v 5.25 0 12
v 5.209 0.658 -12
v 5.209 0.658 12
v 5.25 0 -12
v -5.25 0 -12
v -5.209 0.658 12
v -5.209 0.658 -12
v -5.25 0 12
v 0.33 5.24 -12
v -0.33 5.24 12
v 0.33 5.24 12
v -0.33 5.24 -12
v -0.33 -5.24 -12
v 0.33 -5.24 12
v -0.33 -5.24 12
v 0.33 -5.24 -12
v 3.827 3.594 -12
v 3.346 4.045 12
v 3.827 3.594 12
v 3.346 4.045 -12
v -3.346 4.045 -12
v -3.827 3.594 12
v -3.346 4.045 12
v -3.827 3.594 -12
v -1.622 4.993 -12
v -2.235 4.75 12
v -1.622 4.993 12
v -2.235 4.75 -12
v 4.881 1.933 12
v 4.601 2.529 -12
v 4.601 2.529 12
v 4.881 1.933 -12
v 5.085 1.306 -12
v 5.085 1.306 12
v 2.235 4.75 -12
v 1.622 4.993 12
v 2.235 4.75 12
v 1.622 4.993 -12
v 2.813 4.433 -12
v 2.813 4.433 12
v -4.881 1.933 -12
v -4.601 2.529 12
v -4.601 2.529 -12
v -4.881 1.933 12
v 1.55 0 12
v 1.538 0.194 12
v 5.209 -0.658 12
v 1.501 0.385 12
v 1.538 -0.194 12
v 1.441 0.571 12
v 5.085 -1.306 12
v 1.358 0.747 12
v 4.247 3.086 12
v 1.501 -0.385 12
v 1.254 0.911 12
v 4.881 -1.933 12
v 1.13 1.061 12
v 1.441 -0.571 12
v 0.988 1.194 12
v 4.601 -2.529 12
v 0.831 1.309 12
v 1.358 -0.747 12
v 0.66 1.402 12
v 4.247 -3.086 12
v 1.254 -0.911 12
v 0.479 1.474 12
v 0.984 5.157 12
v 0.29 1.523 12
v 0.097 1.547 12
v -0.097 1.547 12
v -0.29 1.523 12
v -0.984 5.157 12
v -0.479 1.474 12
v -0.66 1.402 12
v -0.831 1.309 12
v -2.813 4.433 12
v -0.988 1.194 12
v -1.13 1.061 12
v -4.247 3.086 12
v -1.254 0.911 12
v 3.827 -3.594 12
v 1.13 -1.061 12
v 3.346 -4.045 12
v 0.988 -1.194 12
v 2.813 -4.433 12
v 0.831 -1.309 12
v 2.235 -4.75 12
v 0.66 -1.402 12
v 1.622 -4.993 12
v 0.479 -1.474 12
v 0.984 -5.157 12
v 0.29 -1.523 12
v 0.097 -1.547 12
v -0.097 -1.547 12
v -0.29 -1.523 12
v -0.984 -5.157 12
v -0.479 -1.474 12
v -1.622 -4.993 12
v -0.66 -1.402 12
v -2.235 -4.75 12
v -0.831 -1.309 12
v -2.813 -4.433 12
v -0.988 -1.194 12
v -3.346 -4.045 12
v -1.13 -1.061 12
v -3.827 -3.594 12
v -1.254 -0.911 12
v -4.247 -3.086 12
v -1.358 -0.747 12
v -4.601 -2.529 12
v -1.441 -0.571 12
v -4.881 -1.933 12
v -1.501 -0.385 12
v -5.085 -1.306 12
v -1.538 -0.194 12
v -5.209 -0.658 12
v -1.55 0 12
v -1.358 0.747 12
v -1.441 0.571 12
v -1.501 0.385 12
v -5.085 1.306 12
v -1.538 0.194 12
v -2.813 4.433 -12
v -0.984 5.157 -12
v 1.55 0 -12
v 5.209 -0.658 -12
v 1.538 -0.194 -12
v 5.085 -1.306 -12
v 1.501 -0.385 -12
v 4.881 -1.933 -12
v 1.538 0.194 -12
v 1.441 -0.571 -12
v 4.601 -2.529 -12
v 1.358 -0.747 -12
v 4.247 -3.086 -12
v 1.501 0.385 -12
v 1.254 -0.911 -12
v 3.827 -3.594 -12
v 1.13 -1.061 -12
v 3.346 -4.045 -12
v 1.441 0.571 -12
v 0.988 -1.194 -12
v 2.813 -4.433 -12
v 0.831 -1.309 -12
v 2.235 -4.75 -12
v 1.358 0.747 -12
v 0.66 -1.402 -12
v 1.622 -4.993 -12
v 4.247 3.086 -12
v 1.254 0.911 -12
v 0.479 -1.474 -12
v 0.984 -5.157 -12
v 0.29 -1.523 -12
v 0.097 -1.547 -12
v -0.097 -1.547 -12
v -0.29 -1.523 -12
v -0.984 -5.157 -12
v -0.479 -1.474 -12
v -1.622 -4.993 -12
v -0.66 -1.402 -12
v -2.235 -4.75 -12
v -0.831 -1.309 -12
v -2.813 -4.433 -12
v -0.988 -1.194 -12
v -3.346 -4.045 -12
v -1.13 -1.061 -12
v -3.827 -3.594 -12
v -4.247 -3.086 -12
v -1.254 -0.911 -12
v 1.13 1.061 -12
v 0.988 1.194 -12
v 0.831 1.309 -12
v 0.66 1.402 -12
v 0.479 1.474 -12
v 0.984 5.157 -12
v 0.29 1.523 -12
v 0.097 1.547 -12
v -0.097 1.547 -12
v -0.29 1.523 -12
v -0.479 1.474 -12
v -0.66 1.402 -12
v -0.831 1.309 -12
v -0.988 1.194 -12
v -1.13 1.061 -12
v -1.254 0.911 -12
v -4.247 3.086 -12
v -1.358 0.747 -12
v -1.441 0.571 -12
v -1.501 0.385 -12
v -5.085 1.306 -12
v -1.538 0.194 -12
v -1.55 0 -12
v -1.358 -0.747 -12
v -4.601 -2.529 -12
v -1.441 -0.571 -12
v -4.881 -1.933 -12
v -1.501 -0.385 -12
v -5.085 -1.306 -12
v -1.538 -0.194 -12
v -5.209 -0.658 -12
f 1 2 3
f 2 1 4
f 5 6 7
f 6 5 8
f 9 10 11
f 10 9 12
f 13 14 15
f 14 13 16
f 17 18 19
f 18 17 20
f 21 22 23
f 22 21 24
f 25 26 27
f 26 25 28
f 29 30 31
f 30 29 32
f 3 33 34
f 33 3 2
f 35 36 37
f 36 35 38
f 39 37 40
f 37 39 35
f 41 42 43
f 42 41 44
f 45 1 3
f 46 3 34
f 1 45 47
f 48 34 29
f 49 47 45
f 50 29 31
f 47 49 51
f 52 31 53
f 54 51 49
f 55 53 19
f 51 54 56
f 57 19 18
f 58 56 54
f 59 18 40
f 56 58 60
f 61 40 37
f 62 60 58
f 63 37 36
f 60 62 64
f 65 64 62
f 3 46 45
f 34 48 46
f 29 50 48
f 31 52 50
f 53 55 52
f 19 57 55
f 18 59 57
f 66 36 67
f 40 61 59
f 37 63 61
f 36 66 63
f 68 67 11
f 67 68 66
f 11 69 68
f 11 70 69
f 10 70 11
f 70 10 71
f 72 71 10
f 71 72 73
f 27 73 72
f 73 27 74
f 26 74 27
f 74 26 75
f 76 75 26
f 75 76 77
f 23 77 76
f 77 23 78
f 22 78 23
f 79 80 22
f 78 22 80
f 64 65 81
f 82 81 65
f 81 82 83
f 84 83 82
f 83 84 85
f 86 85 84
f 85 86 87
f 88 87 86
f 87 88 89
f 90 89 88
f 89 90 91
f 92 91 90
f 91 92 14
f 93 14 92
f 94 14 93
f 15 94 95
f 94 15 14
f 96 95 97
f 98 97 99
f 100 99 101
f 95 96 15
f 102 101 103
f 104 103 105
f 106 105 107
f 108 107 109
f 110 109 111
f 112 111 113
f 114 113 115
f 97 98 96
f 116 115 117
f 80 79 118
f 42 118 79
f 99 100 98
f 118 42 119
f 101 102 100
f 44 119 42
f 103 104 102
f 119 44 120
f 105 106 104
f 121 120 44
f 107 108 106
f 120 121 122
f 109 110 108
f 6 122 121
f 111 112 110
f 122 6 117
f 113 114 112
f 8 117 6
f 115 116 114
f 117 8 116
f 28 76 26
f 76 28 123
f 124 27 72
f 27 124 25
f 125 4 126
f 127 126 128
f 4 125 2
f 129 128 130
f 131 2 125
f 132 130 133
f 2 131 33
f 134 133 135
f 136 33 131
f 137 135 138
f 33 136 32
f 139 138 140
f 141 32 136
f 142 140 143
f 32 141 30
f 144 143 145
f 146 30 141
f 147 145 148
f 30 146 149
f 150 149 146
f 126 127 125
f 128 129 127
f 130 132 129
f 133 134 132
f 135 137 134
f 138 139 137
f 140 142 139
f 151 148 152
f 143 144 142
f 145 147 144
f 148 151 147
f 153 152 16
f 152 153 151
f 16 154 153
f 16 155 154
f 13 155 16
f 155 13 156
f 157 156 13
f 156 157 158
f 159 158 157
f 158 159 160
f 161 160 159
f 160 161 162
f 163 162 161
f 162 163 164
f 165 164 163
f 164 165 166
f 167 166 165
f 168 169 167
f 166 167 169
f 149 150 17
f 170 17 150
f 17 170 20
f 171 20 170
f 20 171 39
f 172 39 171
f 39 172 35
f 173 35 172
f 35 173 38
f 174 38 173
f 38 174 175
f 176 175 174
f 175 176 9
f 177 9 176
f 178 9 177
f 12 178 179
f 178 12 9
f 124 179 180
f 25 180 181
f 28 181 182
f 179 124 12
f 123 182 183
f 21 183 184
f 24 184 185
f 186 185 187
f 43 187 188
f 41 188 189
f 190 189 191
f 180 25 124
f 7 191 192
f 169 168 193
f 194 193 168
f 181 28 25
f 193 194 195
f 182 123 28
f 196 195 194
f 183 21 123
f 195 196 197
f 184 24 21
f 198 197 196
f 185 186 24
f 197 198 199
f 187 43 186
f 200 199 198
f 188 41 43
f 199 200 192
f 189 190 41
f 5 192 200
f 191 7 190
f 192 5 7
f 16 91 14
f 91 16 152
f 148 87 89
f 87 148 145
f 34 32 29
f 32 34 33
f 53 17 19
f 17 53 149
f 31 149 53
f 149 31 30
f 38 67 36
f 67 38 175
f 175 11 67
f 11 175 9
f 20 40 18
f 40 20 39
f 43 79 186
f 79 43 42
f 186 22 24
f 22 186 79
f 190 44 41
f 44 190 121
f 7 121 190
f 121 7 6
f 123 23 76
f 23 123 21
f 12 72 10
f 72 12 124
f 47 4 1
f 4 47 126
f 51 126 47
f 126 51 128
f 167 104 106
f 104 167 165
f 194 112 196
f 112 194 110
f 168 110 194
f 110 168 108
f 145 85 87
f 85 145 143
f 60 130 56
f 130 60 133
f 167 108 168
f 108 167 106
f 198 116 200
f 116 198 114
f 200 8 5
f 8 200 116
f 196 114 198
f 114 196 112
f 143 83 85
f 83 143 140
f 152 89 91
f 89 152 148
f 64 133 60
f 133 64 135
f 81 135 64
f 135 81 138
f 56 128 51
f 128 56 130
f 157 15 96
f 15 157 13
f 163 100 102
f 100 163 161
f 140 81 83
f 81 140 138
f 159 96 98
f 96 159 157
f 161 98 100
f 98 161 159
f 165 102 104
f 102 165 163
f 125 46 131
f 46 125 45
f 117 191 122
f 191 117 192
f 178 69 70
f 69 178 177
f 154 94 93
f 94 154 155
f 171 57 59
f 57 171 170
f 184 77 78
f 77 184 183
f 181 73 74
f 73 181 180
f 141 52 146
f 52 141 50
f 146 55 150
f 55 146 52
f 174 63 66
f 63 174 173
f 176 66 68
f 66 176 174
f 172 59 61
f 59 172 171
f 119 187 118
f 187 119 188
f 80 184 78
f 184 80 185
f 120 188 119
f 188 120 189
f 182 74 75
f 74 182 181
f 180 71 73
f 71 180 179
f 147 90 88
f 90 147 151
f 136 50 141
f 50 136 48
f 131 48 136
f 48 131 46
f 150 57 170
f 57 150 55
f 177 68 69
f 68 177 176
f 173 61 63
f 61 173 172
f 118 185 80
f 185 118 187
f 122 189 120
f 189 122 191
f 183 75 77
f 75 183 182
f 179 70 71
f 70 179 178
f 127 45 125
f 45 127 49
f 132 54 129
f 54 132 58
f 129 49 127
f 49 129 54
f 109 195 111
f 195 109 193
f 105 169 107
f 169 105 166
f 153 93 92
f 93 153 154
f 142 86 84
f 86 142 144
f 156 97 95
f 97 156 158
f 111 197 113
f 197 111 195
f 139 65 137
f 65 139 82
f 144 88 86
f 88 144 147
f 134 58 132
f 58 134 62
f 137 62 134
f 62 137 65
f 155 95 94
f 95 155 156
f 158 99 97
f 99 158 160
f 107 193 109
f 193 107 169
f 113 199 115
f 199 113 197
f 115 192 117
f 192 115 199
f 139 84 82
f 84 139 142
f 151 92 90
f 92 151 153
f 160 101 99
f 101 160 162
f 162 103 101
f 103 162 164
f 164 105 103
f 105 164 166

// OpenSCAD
$fn = 50;


difference() {
	union() {
		translate(v = [0, 0, -12.0000000000]) {
			cylinder(h = 24, r = 5.2500000000);
		}
	}
	union() {
		translate(v = [0, 0, -100.0000000000]) {
			cylinder(h = 200, r = 1.5500000000);
		}
	}
}
